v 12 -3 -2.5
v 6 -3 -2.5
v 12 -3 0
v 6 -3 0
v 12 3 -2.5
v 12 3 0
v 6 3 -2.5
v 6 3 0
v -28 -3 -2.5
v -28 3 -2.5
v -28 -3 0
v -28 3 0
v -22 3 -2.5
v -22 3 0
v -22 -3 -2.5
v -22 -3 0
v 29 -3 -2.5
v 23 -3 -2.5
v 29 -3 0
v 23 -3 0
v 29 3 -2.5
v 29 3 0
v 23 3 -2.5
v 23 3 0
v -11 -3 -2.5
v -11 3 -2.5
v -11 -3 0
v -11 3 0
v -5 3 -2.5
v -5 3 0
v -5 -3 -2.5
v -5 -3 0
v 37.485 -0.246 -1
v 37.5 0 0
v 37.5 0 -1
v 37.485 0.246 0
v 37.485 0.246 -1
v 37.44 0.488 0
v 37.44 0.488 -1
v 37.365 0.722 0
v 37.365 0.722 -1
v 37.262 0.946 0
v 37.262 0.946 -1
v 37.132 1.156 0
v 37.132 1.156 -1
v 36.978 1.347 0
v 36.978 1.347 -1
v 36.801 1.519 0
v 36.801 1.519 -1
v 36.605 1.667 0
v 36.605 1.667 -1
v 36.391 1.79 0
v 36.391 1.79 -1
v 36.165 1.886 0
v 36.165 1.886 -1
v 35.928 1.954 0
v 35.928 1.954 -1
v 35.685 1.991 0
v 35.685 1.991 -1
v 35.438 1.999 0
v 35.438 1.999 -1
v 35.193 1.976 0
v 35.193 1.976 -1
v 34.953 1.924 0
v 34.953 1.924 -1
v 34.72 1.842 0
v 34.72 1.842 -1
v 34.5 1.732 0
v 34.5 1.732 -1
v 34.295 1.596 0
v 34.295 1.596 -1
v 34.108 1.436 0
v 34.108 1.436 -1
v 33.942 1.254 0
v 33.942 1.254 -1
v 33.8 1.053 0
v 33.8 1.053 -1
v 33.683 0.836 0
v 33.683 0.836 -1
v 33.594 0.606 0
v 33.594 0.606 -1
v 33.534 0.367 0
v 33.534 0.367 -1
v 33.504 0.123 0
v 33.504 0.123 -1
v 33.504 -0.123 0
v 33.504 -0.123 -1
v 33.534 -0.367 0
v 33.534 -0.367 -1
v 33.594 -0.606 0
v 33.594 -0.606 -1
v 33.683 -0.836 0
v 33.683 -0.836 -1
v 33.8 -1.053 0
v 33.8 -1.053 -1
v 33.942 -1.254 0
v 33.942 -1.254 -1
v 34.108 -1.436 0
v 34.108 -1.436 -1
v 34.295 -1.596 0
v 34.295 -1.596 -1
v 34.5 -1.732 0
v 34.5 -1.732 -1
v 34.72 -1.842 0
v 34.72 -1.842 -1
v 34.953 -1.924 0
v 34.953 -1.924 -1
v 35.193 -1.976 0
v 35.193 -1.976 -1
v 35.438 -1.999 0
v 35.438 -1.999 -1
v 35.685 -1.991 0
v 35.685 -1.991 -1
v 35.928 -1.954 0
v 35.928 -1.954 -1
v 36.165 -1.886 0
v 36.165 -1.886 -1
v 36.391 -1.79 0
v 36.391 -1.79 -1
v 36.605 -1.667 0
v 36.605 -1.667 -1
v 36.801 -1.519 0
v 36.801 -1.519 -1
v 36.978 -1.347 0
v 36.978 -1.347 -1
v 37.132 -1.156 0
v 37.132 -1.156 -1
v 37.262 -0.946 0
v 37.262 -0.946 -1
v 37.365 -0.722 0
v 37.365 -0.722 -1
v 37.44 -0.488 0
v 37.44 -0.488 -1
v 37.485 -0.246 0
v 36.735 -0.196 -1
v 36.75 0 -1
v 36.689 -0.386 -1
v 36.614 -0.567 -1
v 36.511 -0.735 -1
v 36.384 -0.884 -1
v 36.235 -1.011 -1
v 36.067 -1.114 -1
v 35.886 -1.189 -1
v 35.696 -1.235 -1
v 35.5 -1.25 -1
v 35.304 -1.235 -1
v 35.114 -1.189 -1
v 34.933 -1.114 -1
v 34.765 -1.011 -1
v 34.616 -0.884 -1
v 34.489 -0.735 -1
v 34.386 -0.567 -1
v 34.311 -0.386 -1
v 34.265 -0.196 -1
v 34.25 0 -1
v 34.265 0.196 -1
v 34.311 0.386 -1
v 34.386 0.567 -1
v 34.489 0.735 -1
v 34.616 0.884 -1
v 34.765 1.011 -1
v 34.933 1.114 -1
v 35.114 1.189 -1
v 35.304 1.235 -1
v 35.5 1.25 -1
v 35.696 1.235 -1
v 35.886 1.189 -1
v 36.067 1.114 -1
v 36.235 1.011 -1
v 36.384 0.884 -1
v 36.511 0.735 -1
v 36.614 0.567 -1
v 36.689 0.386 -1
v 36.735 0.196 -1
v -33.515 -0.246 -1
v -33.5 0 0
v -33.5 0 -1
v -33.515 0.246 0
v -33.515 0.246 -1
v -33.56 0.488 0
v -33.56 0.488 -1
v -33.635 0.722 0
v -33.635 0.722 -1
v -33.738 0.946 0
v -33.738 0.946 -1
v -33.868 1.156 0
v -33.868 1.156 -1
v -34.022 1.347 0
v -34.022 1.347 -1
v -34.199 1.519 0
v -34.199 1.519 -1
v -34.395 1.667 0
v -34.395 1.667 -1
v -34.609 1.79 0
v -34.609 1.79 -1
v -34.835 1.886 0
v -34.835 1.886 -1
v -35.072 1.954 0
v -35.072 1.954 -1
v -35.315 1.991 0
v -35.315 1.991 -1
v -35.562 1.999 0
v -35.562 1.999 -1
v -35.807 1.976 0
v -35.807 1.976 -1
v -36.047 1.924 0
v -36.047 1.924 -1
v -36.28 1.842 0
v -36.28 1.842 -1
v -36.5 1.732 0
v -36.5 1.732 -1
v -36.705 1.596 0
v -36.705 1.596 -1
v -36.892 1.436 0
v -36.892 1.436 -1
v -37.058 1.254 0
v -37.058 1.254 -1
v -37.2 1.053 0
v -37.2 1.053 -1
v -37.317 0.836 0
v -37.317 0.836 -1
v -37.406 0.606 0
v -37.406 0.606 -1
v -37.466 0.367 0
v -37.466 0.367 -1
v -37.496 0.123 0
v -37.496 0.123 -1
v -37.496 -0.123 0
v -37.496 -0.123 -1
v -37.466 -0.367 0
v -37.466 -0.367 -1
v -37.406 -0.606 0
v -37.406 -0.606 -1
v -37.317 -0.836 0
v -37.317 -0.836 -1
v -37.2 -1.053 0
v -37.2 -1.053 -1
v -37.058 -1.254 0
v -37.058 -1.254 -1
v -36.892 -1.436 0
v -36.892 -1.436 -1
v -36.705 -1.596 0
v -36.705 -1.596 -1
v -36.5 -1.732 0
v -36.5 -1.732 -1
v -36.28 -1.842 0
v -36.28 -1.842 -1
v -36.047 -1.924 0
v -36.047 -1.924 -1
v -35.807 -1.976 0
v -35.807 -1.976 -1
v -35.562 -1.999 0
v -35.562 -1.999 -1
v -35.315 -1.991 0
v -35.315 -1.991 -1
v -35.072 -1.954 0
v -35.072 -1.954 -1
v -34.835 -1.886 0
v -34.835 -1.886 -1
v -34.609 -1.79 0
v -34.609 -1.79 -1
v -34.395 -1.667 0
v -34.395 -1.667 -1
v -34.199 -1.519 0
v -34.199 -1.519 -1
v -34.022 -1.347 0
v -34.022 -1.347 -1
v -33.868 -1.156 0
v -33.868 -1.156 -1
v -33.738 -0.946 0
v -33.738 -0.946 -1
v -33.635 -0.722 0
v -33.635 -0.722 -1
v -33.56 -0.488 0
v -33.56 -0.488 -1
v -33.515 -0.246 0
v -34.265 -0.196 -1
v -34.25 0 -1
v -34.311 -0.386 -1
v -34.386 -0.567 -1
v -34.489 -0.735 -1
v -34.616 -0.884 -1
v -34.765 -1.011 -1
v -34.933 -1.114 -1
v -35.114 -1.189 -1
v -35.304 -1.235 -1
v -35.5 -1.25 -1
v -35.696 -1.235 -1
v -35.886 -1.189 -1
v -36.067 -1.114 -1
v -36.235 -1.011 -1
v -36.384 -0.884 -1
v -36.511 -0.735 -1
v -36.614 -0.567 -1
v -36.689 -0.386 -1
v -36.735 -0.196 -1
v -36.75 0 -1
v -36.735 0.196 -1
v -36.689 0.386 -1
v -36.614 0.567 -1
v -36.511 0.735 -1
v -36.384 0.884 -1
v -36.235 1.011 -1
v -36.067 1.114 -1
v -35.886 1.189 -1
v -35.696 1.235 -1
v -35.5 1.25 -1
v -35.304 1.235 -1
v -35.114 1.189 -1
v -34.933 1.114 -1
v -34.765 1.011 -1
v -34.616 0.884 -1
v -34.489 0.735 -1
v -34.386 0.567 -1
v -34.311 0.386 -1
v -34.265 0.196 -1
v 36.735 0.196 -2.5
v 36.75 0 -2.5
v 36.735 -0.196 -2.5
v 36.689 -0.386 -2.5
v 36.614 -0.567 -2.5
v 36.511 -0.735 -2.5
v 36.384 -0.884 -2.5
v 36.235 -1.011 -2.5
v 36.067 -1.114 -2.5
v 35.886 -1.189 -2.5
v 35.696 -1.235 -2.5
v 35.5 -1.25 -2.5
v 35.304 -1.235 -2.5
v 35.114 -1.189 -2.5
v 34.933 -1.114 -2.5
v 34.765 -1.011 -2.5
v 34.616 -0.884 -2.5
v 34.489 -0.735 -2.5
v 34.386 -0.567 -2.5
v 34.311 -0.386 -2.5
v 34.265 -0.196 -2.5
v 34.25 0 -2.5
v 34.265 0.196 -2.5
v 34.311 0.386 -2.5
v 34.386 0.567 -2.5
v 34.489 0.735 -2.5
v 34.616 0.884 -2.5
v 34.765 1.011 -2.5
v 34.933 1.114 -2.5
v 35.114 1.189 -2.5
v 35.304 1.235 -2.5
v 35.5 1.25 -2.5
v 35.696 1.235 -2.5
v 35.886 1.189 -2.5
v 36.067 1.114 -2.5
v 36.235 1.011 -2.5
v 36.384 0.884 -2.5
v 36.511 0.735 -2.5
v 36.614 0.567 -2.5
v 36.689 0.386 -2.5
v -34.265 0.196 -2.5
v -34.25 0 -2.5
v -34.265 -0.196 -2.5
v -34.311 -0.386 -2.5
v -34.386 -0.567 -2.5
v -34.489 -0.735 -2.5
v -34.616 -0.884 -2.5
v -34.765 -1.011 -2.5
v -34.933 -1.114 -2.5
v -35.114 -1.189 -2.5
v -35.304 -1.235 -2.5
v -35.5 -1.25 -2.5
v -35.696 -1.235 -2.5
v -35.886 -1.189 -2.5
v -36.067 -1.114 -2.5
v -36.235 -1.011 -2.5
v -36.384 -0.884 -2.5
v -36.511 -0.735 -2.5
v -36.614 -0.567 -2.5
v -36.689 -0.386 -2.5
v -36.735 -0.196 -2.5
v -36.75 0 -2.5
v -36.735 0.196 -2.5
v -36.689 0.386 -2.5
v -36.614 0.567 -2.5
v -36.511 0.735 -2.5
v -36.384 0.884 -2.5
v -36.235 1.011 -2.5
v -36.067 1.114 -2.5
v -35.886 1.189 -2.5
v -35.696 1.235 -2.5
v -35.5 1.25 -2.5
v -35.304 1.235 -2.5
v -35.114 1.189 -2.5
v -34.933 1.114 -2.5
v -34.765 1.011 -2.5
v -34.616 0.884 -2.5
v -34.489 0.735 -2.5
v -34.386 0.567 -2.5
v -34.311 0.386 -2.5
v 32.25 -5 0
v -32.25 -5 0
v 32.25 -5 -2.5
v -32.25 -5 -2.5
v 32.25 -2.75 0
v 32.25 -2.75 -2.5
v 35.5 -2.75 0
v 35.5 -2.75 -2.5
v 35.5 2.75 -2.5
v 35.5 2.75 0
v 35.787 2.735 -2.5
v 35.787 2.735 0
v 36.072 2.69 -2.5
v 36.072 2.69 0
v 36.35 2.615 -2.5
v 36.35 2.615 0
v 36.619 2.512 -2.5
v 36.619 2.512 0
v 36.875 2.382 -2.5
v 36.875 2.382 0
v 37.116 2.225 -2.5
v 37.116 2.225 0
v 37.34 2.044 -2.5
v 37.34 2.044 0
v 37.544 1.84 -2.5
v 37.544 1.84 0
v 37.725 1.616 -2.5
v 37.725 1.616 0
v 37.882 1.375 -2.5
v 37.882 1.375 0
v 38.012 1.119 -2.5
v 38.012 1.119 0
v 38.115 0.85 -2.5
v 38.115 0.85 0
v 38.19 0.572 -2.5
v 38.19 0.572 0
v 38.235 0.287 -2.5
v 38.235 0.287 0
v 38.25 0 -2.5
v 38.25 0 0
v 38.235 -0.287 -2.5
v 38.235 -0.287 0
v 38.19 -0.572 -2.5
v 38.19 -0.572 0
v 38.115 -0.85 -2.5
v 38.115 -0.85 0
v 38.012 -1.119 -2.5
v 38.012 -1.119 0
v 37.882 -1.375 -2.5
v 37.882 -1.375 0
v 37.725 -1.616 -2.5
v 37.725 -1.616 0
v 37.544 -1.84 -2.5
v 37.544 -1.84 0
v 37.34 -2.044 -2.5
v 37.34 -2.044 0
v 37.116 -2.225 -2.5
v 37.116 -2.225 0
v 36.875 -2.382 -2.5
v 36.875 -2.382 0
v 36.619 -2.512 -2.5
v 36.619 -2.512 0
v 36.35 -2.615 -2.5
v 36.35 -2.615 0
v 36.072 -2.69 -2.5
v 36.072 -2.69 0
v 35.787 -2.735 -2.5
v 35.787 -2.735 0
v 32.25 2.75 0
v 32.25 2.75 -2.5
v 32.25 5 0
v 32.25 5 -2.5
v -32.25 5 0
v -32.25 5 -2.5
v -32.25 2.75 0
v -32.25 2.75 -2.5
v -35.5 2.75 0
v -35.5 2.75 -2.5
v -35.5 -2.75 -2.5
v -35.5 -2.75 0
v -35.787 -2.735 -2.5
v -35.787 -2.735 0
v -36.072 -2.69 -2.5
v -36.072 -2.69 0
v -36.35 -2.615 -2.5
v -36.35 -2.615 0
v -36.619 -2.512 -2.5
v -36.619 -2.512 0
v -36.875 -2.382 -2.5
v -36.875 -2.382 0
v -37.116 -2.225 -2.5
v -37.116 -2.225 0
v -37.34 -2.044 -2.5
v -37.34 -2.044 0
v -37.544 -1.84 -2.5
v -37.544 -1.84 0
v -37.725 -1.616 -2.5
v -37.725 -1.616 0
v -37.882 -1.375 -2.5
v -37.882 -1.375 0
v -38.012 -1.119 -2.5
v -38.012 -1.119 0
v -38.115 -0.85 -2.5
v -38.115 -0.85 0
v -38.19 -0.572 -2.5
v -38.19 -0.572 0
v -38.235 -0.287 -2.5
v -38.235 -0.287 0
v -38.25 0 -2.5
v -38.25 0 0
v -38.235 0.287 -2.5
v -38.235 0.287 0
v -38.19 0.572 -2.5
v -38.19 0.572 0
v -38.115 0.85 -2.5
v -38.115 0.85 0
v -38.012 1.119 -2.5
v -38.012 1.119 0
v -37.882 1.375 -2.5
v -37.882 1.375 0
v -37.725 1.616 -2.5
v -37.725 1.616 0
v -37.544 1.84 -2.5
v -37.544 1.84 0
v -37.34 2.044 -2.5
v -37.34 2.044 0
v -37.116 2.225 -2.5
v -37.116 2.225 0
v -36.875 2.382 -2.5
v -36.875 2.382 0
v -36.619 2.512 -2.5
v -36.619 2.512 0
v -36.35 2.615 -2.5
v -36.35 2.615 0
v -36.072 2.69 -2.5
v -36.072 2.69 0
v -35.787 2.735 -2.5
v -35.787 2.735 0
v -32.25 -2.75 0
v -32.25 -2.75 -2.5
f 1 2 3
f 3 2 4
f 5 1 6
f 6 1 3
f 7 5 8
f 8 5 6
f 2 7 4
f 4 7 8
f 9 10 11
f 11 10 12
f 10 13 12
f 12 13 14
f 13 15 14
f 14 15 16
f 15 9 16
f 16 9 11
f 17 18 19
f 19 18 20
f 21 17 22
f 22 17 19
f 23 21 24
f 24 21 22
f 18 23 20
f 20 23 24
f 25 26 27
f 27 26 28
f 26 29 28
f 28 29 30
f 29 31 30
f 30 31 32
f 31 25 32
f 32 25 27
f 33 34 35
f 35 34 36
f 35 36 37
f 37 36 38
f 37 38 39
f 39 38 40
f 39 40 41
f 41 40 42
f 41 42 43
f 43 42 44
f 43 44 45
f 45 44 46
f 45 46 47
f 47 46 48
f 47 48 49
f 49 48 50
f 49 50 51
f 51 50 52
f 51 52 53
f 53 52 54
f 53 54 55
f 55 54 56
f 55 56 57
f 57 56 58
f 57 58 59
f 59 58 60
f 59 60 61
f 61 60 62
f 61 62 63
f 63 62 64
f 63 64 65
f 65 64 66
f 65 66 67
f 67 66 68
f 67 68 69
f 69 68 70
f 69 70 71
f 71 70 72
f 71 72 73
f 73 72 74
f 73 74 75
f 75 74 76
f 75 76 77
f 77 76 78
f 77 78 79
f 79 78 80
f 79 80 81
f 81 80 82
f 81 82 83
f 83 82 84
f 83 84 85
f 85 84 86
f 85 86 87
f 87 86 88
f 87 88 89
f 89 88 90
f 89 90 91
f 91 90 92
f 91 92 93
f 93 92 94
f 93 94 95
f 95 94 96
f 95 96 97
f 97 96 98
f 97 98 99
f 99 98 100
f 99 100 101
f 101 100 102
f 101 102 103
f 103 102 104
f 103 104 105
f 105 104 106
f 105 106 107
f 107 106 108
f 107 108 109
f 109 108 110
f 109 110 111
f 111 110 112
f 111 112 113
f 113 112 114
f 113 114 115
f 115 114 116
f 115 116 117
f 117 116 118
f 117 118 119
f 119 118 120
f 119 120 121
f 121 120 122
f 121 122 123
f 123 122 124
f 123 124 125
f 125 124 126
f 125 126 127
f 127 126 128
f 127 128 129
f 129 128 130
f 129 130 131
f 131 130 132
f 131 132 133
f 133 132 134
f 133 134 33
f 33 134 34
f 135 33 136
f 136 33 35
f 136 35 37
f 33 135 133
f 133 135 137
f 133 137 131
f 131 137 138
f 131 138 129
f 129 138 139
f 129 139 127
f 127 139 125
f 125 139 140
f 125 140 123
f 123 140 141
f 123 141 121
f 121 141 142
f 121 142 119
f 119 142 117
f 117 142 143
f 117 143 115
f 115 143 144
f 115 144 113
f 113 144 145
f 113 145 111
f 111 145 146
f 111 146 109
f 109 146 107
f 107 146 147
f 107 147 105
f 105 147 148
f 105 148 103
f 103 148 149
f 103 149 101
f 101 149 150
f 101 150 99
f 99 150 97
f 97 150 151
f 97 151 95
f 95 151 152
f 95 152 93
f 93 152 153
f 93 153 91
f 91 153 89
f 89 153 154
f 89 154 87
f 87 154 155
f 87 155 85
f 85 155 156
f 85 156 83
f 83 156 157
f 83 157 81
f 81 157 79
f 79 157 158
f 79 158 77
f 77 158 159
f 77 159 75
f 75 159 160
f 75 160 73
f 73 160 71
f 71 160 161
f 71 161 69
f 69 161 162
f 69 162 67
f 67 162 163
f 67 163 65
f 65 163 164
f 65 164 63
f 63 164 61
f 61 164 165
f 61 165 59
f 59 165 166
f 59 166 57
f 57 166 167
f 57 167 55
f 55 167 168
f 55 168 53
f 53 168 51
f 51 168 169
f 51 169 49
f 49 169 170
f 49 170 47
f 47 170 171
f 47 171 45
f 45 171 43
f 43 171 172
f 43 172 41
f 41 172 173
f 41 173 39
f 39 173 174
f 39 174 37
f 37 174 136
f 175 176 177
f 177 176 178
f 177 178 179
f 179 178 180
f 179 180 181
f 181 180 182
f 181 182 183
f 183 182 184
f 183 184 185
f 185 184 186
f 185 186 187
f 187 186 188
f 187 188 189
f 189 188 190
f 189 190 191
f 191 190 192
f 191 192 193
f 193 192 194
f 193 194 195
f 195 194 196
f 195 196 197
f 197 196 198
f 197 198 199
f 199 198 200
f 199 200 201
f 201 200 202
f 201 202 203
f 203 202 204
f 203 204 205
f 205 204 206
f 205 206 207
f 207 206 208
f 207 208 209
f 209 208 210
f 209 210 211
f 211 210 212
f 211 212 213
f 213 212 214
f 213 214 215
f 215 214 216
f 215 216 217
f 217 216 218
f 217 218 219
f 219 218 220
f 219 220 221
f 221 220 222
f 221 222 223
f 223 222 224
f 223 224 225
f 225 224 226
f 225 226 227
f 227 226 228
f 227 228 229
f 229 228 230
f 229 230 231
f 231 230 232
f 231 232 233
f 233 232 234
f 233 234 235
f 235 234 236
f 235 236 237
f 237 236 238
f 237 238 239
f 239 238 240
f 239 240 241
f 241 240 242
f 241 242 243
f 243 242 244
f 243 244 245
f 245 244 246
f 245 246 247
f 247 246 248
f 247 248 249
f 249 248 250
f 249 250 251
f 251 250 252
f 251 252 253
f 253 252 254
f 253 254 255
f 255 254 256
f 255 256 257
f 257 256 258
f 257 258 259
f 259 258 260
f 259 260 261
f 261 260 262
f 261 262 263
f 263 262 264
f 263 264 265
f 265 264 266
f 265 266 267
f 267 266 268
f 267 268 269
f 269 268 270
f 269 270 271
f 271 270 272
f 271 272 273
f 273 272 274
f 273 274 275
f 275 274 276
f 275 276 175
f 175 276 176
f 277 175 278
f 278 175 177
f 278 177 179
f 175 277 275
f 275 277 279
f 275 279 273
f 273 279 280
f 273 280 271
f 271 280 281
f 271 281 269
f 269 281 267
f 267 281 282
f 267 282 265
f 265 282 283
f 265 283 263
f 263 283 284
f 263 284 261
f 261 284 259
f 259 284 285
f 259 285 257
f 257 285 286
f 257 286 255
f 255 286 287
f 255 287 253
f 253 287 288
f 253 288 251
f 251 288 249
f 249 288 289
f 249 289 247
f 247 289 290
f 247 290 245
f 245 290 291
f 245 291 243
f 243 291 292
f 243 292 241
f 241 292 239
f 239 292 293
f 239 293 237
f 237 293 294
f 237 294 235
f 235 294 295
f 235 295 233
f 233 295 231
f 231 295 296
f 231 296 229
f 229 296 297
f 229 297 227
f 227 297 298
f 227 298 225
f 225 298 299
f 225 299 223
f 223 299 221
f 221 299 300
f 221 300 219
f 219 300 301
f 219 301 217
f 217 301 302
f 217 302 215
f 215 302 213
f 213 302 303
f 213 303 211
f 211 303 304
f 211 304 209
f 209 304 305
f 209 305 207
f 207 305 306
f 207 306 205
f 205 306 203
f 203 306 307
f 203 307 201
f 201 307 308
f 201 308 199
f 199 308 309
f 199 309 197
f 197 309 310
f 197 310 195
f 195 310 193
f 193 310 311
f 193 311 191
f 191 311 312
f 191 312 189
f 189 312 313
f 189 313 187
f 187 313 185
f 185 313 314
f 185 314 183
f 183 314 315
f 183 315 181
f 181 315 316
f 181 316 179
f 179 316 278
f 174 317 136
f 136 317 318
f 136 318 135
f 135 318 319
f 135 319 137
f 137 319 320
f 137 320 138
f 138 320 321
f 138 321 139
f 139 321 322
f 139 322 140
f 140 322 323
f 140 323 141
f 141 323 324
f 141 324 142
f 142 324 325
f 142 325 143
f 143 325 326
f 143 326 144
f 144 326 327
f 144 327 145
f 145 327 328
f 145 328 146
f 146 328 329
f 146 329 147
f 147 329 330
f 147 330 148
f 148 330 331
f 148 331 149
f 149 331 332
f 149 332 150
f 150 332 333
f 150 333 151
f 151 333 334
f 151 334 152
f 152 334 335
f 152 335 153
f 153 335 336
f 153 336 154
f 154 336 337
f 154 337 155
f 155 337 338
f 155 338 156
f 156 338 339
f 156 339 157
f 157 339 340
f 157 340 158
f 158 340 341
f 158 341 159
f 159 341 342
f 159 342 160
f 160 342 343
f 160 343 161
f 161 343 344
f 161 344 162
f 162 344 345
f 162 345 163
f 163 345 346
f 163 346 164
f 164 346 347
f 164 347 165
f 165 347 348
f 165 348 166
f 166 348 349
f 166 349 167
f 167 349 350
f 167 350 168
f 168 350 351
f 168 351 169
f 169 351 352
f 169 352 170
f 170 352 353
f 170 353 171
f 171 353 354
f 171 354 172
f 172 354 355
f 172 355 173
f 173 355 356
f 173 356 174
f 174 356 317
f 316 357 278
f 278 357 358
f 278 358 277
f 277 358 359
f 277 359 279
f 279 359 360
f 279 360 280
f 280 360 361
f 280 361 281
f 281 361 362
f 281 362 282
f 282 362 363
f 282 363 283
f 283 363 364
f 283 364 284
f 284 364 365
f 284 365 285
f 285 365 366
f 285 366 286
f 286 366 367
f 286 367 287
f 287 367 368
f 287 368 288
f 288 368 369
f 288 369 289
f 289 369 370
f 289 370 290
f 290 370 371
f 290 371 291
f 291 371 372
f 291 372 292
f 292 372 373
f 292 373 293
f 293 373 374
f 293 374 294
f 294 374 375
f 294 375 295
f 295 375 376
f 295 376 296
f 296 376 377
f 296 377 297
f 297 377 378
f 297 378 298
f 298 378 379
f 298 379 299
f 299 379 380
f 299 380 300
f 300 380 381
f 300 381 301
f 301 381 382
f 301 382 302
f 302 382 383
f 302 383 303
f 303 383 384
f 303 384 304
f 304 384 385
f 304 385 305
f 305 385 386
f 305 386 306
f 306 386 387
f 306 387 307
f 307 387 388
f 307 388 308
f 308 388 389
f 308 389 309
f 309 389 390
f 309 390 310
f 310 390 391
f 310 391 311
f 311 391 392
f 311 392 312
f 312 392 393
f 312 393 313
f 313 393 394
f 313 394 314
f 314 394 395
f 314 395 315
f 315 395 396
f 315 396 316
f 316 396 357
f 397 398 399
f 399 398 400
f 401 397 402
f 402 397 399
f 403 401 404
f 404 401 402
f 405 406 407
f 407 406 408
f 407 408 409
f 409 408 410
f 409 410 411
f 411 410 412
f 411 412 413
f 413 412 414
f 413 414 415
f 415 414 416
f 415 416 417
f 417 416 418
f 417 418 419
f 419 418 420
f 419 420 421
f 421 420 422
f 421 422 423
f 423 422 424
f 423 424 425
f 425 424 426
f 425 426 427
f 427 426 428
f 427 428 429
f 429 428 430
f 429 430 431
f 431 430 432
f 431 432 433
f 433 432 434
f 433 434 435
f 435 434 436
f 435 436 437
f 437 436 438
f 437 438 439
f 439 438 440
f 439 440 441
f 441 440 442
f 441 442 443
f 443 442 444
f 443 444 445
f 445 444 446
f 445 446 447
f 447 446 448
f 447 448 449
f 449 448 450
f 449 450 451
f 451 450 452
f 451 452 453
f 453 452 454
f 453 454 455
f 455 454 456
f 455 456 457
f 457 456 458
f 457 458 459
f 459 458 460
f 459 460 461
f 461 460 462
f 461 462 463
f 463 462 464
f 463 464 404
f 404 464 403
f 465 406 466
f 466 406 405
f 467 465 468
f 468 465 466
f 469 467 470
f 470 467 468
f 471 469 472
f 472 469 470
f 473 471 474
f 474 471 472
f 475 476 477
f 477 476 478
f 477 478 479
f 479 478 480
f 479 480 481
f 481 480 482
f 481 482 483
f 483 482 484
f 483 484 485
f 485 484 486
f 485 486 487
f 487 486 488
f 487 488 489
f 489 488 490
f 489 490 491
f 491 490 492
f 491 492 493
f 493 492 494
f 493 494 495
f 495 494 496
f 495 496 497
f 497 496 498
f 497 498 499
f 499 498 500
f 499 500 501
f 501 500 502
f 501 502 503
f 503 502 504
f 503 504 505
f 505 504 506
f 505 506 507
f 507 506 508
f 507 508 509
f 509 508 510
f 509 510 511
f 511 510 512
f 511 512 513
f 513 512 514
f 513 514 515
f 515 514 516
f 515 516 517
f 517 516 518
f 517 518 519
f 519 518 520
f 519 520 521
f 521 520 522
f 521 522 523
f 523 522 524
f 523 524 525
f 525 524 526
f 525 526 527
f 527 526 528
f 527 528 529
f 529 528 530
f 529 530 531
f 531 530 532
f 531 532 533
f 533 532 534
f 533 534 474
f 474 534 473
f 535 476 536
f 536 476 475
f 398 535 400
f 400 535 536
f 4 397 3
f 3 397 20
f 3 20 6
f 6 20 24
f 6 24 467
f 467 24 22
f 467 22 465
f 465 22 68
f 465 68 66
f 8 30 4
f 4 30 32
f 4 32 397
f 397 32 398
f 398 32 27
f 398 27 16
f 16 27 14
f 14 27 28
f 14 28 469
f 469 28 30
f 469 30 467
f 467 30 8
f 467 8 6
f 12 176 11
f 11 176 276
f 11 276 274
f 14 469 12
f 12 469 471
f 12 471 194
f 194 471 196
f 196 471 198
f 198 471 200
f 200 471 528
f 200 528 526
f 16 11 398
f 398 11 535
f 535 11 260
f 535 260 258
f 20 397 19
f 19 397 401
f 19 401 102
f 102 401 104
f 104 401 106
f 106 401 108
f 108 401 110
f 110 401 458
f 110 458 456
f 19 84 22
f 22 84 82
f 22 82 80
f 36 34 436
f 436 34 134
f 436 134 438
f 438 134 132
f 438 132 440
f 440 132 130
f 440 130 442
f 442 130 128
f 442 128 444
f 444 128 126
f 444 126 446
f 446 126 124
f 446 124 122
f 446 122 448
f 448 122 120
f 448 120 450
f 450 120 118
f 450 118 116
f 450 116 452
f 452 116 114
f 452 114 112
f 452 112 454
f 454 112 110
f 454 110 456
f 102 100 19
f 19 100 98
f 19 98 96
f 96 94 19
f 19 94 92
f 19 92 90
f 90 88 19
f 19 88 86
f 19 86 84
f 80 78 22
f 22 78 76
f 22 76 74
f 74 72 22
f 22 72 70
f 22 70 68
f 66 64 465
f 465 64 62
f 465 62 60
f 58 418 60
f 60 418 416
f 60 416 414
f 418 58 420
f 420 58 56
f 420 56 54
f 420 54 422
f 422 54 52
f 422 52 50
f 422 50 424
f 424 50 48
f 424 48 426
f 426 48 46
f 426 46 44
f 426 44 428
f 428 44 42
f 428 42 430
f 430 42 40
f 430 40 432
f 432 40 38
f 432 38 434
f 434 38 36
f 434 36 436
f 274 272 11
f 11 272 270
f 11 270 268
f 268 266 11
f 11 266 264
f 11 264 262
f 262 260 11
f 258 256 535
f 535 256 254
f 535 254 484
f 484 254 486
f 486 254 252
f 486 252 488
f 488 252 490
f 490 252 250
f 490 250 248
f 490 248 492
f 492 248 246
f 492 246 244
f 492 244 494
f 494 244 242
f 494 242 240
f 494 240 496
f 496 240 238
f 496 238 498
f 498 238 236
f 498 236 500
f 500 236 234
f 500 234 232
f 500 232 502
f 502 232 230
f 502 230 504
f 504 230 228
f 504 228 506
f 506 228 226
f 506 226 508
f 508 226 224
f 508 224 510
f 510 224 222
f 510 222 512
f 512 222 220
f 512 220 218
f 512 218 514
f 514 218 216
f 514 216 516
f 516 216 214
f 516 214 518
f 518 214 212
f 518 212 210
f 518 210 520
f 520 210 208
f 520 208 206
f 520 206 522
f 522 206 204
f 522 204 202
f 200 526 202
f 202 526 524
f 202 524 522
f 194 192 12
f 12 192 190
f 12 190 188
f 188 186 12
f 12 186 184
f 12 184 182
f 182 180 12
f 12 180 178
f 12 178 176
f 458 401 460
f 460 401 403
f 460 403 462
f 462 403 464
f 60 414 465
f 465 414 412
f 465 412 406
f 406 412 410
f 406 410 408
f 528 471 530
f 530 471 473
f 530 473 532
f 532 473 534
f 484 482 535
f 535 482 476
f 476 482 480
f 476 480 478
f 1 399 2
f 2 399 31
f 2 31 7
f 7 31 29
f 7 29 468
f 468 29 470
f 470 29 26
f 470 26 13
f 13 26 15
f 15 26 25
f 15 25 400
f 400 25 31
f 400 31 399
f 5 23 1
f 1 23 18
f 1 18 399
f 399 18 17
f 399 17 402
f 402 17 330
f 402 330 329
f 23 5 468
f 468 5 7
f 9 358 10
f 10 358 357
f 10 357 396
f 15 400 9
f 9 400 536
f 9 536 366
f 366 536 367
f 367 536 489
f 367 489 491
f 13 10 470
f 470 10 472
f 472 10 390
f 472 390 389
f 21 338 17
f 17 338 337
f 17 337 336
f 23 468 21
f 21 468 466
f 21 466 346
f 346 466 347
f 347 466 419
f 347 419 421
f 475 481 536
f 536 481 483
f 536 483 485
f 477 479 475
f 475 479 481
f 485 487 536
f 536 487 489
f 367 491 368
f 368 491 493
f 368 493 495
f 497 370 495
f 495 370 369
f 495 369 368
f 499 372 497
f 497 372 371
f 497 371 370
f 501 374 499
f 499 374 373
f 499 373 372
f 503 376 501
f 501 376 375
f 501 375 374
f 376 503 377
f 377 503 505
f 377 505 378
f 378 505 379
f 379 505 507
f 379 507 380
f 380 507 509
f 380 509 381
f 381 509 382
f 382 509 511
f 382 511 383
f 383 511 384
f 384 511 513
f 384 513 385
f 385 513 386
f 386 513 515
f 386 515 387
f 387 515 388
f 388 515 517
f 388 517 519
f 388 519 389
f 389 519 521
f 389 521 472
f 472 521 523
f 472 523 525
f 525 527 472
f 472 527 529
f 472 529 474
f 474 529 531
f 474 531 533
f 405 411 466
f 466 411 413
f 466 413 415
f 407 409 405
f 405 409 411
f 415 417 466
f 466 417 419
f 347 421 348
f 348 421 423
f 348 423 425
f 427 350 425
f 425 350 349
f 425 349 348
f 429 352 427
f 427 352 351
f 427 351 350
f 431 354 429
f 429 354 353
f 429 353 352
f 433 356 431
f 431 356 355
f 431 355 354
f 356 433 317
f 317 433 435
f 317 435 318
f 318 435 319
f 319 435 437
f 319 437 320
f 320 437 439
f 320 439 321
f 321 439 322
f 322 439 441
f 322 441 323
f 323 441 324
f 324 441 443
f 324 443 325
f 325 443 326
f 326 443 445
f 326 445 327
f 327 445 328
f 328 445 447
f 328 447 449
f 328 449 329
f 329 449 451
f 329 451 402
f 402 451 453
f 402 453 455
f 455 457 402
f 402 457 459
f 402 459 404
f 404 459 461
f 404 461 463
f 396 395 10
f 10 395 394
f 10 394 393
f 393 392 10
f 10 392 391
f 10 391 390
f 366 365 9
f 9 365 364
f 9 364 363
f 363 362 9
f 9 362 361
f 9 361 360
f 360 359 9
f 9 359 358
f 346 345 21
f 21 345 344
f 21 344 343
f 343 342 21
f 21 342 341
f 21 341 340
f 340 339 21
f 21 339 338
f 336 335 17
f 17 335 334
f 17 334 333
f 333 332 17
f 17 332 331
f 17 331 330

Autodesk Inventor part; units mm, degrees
ref_plane "YZ Plane" through (0, 0, 0) normal (1, 0, 0) x (0, 1, 0)
ref_plane "XZ Plane" through (0, 0, 0) normal (0, 1, 0) x (-1, 0, 0)
ref_plane "XY Plane" through (0, 0, 0) normal (0, 0, 1) x (1, 0, 0)
sketch "스케치1" plane through (0, 0, 0) normal (0, 0, 1) x (1, 0, 0)
  line L0 (-32.25, 5) -> (32.25, 5)
  line L1 (32.25, 5) -> (32.25, -5)
  line L2 (32.25, -5) -> (-32.25, -5)
  line L3 (-32.25, -5) -> (-32.25, 5)
  line L4 (-32.25, 5) -> (32.25, -5) construction
  line L5 (32.25, 5) -> (-32.25, -5) construction
  circle A0 centre (-35.5, 0) radius 2.75
  circle A1 centre (-35.5, 0) radius 1.25
  line L6 (0, 0) -> (0, 3.25)
  circle A2 centre (35.5, 0) radius 2.75
  circle A3 centre (35.5, 0) radius 1.25
  line L7 (-35.5, 2.75) -> (-32.25, 2.75)
  line L8 (-35.5, -2.75) -> (-32.25, -2.75)
  line L9 (35.5, 2.75) -> (32.25, 2.75)
  line L10 (35.5, -2.75) -> (32.25, -2.75)
  dimension "d0" = 64.5
  dimension "d1" = 10
  dimension "d2" = 5.5
  dimension "d3" = 2.5
  dimension "d4" = 71
extrude "돌출1" add sketch "스케치1" against normal blind 2.5
sketch "스케치2" plane through (0, 0, 0) normal (0, 0, 1) x (1, 0, 0)
  circle A0 centre (-35.5, 0) radius 1.25 projected
  circle A1 centre (-35.5, 0) radius 2
  circle A2 centre (35.5, 0) radius 1.25 projected
  circle A3 centre (35.5, 0) radius 2
  point P0 (0, 0)
  dimension "d7" = 4
  dimension "d8" = 4
extrude "돌출2" cut sketch "스케치2" against normal blind 1 contours A0 | A1 | A2 | A3
sketch "스케치3" plane through (0, 0, 0) normal (0, 0, 1) x (1, 0, 0)
  line L0 (-28, 3) -> (-22, 3)
  line L1 (-22, 3) -> (-22, -3)
  line L2 (-22, -3) -> (-28, -3)
  line L3 (-28, -3) -> (-28, 3)
  line L4 (-28, 3) -> (-22, -3) construction
  line L5 (-22, 3) -> (-28, -3) construction
  line L6 (-11, 3) -> (-5, 3)
  line L7 (-5, 3) -> (-5, -3)
  line L8 (-5, -3) -> (-11, -3)
  line L9 (-11, -3) -> (-11, 3)
  line L10 (-11, 3) -> (-5, -3) construction
  line L11 (-5, 3) -> (-11, -3) construction
  line L12 (6, 3) -> (12, 3)
  line L13 (12, 3) -> (12, -3)
  line L14 (12, -3) -> (6, -3)
  line L15 (6, -3) -> (6, 3)
  line L16 (6, 3) -> (12, -3) construction
  line L17 (12, 3) -> (6, -3) construction
  line L18 (23, 3) -> (29, 3)
  line L19 (29, 3) -> (29, -3)
  line L20 (29, -3) -> (23, -3)
  line L21 (23, -3) -> (23, 3)
  line L22 (23, 3) -> (29, -3) construction
  line L23 (29, 3) -> (23, -3) construction
  point P0 (0, 0)
  point P1 (-25, 0)
  point P2 (-8, 0)
  point P3 (9, 0)
  point P4 (26, 0)
  dimension "d11" = 6
  dimension "d12" = 6
  dimension "d13" = 25
  dimension "d16" = 17
extrude "돌출3" cut sketch "스케치3" against normal up to surface (2.5 mm away)
properties part number "네오픽셀 홀더"
